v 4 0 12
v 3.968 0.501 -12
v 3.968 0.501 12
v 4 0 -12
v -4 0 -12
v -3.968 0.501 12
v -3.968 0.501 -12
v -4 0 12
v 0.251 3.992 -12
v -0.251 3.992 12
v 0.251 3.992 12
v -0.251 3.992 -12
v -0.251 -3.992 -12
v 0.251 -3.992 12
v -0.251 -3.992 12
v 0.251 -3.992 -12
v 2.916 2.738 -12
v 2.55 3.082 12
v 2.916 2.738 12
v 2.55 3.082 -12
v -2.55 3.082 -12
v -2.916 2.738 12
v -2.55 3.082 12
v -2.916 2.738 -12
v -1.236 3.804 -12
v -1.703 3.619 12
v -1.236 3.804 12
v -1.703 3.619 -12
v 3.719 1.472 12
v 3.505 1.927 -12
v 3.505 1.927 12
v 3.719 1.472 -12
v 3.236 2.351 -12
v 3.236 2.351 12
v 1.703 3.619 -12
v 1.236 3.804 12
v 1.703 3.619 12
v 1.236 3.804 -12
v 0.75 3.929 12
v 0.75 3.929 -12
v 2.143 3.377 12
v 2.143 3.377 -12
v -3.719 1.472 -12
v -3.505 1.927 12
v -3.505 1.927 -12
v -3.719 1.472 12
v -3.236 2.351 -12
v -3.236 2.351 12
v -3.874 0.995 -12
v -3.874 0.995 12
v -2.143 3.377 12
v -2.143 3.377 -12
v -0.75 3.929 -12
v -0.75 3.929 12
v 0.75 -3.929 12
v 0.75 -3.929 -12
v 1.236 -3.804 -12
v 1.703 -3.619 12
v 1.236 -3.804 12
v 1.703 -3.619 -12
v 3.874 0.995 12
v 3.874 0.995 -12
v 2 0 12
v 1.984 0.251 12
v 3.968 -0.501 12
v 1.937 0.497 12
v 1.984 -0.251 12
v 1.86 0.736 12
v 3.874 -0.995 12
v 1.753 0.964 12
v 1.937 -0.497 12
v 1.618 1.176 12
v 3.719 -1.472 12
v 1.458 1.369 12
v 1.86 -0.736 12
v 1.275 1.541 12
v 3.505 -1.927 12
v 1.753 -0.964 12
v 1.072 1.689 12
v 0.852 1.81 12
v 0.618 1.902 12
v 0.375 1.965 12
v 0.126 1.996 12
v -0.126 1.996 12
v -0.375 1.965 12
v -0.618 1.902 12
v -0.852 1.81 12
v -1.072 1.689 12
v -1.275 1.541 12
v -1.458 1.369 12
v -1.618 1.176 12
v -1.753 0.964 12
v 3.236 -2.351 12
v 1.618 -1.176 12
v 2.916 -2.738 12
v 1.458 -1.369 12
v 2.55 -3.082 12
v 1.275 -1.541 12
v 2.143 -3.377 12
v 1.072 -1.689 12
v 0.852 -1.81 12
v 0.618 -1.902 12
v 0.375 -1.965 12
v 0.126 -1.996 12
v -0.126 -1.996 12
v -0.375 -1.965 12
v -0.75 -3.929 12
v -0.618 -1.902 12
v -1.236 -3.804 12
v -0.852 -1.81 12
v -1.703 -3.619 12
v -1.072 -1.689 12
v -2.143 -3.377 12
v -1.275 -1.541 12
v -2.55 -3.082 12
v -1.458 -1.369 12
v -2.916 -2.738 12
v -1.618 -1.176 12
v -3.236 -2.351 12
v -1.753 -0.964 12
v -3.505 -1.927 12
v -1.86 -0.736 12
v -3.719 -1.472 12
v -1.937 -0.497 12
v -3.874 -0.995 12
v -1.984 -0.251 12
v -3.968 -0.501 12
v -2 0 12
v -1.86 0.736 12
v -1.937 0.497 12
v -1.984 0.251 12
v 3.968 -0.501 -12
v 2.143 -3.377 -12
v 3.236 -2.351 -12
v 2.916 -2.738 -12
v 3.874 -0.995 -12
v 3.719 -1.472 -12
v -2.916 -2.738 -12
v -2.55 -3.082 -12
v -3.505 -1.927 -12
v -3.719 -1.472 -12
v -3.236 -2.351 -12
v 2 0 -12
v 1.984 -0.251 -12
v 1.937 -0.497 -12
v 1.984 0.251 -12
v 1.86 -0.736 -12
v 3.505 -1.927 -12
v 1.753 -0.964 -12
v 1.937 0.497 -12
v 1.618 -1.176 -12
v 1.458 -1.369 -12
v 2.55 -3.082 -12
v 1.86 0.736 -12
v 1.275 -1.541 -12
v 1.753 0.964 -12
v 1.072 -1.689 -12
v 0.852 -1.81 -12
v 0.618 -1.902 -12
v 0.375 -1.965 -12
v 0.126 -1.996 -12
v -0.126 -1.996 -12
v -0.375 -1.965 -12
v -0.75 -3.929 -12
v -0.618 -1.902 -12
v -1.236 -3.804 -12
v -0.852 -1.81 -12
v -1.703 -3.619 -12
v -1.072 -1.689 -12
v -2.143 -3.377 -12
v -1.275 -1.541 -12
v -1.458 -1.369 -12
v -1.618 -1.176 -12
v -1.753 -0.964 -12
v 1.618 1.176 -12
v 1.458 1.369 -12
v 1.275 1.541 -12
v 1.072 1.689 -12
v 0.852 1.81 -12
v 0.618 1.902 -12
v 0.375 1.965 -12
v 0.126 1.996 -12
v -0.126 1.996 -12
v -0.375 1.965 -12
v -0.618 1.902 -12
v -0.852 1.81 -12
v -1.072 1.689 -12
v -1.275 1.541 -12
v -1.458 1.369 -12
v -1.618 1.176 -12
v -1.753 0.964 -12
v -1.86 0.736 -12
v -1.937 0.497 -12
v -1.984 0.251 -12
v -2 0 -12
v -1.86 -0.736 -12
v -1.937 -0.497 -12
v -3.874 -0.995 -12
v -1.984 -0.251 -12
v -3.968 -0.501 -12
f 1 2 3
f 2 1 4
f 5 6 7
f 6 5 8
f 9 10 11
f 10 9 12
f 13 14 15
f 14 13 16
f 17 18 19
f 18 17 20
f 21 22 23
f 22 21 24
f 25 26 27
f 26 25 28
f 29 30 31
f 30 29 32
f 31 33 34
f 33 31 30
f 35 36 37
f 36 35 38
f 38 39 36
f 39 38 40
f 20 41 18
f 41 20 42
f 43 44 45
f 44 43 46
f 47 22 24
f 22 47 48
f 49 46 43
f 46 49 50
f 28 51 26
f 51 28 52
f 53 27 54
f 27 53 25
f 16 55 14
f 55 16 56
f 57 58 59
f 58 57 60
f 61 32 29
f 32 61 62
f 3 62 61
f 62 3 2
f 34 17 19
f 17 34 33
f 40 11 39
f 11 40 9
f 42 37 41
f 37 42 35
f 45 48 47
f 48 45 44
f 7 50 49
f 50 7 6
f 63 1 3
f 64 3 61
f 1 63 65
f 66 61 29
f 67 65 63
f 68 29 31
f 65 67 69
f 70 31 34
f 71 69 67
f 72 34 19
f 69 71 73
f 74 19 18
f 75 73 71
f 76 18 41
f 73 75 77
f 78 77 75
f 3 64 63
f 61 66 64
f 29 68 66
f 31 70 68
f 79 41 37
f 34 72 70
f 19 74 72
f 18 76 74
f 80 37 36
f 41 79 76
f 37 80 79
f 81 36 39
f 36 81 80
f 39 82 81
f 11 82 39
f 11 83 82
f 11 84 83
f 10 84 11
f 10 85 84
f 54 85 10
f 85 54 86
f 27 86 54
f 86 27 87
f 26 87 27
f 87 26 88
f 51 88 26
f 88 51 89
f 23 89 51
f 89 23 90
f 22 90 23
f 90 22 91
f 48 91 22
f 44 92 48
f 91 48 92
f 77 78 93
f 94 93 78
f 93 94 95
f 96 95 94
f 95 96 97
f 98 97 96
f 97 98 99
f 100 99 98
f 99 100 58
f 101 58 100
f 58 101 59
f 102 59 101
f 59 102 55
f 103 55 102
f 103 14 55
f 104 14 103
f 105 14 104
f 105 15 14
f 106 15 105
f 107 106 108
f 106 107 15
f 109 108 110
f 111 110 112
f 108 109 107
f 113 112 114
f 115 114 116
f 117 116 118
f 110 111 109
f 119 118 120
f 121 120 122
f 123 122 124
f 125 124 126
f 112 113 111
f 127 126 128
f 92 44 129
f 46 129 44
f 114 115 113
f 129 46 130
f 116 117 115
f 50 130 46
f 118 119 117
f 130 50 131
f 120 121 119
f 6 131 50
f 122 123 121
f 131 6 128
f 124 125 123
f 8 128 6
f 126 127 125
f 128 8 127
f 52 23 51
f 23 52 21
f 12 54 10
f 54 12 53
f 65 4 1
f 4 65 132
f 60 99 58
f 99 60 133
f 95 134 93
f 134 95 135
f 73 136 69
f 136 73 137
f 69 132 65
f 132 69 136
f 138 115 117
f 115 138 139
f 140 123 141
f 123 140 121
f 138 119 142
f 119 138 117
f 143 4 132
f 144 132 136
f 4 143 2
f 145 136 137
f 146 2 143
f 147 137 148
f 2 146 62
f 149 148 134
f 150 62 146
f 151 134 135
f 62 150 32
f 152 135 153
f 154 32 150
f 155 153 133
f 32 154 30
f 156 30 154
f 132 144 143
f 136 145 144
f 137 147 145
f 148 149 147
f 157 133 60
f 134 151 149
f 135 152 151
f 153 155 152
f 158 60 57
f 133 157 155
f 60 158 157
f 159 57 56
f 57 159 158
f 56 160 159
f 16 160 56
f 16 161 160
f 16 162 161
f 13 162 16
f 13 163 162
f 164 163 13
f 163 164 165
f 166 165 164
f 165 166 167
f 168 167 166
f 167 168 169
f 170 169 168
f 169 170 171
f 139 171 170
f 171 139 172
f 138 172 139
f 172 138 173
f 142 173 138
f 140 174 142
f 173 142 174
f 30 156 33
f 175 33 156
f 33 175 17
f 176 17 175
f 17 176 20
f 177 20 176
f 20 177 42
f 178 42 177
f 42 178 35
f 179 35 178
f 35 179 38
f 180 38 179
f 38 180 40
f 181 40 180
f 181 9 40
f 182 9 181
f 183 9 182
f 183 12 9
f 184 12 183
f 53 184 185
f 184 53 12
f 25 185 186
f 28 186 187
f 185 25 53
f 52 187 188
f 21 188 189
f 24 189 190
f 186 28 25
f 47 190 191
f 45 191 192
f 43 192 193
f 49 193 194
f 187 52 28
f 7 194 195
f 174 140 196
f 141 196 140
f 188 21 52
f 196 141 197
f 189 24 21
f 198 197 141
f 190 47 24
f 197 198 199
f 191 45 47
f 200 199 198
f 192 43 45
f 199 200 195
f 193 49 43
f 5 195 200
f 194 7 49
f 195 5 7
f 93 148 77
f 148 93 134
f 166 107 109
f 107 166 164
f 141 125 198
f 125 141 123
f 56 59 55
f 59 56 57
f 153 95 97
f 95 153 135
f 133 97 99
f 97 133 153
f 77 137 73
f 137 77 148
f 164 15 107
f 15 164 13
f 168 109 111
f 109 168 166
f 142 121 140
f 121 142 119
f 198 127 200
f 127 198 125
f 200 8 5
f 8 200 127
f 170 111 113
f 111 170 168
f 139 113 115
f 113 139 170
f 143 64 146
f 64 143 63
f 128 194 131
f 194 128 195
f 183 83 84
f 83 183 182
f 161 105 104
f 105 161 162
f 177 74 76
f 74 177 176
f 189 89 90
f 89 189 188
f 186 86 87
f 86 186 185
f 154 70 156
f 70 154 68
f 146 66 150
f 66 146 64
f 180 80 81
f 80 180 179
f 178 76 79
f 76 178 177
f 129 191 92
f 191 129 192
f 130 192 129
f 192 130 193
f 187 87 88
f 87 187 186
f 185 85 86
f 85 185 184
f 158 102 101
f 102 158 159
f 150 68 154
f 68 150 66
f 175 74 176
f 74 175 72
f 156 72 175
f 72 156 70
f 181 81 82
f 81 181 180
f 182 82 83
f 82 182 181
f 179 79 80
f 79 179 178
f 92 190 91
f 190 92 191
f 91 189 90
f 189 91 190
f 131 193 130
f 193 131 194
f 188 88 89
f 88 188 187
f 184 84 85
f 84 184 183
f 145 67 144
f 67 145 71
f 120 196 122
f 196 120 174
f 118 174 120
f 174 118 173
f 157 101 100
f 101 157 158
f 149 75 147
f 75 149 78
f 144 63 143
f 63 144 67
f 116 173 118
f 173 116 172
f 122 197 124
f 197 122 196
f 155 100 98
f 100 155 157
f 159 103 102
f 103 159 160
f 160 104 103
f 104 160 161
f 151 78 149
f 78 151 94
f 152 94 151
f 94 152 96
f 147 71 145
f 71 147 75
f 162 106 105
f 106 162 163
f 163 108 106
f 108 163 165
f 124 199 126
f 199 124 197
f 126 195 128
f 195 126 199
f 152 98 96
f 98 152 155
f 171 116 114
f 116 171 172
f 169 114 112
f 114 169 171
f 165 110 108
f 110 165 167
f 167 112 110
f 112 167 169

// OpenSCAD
$fn = 50;


difference() {
	union() {
		translate(v = [0, 0, -12.0000000000]) {
			cylinder(h = 24, r = 4.0000000000);
		}
	}
	union() {
		translate(v = [0, 0, -100.0000000000]) {
			cylinder(h = 200, r = 2);
		}
	}
}
